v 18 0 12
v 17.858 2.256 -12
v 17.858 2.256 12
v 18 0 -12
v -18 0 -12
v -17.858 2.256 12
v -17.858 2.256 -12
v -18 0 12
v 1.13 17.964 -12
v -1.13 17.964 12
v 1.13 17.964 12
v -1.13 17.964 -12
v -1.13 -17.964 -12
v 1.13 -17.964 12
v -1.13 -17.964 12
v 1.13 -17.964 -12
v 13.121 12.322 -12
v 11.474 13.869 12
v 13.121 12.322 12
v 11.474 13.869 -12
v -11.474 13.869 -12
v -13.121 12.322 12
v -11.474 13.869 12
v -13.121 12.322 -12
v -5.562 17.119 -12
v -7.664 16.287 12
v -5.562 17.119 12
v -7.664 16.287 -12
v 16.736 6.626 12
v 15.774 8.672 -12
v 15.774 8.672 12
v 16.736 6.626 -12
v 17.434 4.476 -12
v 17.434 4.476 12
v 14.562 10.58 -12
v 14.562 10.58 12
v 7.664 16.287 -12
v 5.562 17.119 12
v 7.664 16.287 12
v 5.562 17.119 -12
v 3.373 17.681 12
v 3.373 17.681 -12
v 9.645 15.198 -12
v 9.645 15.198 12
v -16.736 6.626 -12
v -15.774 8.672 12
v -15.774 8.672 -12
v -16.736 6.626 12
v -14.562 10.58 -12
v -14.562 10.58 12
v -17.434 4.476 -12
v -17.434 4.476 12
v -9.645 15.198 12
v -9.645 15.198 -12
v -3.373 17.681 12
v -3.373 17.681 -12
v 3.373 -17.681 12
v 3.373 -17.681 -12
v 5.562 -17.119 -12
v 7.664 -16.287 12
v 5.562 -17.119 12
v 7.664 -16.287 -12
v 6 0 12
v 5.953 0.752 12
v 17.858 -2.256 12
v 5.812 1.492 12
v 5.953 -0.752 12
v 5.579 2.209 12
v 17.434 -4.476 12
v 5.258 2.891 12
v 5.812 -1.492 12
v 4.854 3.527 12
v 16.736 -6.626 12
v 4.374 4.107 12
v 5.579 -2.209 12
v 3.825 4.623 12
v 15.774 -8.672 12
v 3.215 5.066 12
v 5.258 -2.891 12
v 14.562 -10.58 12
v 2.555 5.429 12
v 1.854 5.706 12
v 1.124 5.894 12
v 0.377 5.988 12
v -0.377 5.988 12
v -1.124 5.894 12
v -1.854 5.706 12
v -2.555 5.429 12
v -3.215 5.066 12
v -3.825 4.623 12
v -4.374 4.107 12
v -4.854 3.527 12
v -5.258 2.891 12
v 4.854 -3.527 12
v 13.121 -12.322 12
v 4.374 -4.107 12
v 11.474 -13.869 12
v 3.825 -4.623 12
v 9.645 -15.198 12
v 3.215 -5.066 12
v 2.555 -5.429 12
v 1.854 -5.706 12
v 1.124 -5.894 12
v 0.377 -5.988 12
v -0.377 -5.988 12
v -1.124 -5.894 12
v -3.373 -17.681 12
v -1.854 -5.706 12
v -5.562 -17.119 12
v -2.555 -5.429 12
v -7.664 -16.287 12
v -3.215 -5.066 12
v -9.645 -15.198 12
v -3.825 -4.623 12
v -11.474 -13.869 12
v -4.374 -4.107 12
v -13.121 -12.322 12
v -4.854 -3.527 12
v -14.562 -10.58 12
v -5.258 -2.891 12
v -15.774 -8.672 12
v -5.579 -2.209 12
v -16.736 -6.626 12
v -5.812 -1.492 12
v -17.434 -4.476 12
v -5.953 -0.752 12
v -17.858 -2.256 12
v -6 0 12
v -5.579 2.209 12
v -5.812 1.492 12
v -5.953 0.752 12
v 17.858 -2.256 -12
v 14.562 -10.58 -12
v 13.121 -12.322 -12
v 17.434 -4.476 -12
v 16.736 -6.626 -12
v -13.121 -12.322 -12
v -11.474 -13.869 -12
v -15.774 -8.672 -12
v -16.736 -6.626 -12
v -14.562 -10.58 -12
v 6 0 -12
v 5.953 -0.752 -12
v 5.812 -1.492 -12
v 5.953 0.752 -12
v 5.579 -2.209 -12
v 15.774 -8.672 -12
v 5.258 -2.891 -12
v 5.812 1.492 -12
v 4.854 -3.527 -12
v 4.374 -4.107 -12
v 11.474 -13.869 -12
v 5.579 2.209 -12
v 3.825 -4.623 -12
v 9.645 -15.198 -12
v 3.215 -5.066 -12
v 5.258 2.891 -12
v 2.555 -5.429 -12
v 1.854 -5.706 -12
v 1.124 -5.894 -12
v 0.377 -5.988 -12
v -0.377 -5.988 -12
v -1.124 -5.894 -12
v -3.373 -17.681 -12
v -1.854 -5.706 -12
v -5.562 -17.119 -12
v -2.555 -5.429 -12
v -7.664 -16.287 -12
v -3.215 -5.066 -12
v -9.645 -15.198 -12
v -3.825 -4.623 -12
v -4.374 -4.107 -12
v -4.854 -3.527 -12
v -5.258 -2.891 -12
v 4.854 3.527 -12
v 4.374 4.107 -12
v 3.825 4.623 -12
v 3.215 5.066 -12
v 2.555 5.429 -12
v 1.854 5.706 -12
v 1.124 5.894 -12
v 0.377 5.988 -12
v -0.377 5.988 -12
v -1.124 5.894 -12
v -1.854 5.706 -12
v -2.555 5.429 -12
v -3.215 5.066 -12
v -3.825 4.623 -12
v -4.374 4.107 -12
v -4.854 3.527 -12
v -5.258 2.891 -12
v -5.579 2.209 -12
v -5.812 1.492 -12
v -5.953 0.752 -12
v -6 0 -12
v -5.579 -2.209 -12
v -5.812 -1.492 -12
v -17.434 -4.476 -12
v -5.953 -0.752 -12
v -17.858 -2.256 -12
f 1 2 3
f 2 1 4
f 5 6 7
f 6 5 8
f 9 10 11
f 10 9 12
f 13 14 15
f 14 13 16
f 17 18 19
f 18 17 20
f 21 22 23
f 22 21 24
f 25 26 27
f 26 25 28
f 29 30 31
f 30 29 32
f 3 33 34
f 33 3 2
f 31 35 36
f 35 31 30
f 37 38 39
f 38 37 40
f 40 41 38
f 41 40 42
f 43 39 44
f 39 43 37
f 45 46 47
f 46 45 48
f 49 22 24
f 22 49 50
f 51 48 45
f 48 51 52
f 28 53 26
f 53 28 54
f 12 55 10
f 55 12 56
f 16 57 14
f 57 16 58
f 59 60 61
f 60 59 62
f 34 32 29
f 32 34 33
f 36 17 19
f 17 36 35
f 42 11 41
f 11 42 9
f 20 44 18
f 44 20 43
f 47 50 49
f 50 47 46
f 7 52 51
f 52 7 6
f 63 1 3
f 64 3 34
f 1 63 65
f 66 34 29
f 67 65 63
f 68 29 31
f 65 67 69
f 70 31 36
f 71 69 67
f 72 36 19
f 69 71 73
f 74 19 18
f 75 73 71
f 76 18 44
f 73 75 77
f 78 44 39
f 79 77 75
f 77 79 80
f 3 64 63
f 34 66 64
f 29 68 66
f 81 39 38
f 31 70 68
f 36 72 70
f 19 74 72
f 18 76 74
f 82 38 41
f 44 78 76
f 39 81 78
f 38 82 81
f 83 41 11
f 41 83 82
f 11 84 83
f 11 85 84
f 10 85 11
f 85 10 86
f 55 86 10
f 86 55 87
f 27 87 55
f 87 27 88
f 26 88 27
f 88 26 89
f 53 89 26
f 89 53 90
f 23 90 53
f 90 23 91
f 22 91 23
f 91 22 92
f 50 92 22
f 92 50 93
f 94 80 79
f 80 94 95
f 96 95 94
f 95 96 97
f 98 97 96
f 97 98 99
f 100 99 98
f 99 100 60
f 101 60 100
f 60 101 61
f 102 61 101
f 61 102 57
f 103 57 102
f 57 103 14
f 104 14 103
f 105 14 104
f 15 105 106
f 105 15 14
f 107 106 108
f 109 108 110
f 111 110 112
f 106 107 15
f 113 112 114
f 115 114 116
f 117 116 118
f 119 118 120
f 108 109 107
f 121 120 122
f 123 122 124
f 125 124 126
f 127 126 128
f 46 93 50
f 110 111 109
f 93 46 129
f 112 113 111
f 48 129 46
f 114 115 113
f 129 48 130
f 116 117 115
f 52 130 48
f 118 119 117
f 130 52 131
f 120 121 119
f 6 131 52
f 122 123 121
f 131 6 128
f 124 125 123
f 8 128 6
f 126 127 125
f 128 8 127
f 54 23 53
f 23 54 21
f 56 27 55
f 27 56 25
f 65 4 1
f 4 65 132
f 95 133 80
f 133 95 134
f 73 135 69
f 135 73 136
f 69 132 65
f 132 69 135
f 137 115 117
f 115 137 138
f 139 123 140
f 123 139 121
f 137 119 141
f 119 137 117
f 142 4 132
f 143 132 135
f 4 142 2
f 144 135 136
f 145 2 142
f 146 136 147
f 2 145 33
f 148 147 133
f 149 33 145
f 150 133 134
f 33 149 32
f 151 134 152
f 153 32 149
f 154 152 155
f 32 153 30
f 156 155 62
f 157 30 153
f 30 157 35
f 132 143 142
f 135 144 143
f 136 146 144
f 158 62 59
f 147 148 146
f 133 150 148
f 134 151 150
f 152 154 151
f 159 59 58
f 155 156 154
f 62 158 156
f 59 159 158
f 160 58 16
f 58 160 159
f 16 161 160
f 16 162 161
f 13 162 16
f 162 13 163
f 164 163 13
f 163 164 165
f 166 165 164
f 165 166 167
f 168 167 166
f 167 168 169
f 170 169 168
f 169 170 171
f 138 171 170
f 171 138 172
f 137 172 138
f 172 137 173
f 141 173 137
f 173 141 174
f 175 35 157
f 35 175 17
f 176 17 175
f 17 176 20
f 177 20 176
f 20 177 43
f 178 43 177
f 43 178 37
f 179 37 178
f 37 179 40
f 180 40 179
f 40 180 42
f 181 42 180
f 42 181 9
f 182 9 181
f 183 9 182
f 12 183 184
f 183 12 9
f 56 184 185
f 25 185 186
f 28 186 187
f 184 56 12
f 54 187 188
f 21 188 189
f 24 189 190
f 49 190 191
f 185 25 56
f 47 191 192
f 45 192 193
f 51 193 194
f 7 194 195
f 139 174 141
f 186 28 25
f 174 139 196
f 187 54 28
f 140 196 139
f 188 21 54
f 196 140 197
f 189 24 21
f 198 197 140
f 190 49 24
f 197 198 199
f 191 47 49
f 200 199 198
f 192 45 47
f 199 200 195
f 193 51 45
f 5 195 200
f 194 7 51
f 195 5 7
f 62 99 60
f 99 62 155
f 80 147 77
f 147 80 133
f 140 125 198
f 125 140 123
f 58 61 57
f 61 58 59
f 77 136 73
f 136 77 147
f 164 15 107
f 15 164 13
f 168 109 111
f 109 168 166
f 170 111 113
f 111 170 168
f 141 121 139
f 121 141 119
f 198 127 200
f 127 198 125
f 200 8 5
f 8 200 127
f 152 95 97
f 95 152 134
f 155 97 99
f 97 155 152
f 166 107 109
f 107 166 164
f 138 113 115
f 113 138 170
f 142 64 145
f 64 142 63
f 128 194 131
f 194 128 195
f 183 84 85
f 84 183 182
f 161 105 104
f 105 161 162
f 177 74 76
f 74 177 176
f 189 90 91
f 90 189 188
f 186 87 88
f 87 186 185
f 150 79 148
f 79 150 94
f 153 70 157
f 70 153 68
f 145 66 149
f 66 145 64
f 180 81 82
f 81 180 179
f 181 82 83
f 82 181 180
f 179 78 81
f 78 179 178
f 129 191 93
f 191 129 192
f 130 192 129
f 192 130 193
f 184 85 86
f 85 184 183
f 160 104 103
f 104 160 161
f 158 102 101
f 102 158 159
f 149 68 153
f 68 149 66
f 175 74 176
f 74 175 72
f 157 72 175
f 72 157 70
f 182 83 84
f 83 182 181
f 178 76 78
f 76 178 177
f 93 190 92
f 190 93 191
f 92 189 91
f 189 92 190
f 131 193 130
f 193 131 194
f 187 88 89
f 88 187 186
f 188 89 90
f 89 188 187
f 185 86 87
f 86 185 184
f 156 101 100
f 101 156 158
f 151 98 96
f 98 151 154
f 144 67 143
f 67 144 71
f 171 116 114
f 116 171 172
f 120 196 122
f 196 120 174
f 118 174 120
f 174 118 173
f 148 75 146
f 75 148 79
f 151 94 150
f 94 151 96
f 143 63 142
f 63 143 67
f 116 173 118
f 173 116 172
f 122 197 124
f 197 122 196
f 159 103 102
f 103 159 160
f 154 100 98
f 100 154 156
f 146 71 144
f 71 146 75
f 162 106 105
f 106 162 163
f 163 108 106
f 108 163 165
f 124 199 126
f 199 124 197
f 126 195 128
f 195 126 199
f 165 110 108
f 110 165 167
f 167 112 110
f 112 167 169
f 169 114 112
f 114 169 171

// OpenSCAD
$fn = 50;


difference() {
	union() {
		translate(v = [0, 0, -12.0000000000]) {
			cylinder(h = 24, r = 18.0000000000);
		}
	}
	union() {
		translate(v = [0, 0, -100.0000000000]) {
			cylinder(h = 200, r = 6);
		}
	}
}
